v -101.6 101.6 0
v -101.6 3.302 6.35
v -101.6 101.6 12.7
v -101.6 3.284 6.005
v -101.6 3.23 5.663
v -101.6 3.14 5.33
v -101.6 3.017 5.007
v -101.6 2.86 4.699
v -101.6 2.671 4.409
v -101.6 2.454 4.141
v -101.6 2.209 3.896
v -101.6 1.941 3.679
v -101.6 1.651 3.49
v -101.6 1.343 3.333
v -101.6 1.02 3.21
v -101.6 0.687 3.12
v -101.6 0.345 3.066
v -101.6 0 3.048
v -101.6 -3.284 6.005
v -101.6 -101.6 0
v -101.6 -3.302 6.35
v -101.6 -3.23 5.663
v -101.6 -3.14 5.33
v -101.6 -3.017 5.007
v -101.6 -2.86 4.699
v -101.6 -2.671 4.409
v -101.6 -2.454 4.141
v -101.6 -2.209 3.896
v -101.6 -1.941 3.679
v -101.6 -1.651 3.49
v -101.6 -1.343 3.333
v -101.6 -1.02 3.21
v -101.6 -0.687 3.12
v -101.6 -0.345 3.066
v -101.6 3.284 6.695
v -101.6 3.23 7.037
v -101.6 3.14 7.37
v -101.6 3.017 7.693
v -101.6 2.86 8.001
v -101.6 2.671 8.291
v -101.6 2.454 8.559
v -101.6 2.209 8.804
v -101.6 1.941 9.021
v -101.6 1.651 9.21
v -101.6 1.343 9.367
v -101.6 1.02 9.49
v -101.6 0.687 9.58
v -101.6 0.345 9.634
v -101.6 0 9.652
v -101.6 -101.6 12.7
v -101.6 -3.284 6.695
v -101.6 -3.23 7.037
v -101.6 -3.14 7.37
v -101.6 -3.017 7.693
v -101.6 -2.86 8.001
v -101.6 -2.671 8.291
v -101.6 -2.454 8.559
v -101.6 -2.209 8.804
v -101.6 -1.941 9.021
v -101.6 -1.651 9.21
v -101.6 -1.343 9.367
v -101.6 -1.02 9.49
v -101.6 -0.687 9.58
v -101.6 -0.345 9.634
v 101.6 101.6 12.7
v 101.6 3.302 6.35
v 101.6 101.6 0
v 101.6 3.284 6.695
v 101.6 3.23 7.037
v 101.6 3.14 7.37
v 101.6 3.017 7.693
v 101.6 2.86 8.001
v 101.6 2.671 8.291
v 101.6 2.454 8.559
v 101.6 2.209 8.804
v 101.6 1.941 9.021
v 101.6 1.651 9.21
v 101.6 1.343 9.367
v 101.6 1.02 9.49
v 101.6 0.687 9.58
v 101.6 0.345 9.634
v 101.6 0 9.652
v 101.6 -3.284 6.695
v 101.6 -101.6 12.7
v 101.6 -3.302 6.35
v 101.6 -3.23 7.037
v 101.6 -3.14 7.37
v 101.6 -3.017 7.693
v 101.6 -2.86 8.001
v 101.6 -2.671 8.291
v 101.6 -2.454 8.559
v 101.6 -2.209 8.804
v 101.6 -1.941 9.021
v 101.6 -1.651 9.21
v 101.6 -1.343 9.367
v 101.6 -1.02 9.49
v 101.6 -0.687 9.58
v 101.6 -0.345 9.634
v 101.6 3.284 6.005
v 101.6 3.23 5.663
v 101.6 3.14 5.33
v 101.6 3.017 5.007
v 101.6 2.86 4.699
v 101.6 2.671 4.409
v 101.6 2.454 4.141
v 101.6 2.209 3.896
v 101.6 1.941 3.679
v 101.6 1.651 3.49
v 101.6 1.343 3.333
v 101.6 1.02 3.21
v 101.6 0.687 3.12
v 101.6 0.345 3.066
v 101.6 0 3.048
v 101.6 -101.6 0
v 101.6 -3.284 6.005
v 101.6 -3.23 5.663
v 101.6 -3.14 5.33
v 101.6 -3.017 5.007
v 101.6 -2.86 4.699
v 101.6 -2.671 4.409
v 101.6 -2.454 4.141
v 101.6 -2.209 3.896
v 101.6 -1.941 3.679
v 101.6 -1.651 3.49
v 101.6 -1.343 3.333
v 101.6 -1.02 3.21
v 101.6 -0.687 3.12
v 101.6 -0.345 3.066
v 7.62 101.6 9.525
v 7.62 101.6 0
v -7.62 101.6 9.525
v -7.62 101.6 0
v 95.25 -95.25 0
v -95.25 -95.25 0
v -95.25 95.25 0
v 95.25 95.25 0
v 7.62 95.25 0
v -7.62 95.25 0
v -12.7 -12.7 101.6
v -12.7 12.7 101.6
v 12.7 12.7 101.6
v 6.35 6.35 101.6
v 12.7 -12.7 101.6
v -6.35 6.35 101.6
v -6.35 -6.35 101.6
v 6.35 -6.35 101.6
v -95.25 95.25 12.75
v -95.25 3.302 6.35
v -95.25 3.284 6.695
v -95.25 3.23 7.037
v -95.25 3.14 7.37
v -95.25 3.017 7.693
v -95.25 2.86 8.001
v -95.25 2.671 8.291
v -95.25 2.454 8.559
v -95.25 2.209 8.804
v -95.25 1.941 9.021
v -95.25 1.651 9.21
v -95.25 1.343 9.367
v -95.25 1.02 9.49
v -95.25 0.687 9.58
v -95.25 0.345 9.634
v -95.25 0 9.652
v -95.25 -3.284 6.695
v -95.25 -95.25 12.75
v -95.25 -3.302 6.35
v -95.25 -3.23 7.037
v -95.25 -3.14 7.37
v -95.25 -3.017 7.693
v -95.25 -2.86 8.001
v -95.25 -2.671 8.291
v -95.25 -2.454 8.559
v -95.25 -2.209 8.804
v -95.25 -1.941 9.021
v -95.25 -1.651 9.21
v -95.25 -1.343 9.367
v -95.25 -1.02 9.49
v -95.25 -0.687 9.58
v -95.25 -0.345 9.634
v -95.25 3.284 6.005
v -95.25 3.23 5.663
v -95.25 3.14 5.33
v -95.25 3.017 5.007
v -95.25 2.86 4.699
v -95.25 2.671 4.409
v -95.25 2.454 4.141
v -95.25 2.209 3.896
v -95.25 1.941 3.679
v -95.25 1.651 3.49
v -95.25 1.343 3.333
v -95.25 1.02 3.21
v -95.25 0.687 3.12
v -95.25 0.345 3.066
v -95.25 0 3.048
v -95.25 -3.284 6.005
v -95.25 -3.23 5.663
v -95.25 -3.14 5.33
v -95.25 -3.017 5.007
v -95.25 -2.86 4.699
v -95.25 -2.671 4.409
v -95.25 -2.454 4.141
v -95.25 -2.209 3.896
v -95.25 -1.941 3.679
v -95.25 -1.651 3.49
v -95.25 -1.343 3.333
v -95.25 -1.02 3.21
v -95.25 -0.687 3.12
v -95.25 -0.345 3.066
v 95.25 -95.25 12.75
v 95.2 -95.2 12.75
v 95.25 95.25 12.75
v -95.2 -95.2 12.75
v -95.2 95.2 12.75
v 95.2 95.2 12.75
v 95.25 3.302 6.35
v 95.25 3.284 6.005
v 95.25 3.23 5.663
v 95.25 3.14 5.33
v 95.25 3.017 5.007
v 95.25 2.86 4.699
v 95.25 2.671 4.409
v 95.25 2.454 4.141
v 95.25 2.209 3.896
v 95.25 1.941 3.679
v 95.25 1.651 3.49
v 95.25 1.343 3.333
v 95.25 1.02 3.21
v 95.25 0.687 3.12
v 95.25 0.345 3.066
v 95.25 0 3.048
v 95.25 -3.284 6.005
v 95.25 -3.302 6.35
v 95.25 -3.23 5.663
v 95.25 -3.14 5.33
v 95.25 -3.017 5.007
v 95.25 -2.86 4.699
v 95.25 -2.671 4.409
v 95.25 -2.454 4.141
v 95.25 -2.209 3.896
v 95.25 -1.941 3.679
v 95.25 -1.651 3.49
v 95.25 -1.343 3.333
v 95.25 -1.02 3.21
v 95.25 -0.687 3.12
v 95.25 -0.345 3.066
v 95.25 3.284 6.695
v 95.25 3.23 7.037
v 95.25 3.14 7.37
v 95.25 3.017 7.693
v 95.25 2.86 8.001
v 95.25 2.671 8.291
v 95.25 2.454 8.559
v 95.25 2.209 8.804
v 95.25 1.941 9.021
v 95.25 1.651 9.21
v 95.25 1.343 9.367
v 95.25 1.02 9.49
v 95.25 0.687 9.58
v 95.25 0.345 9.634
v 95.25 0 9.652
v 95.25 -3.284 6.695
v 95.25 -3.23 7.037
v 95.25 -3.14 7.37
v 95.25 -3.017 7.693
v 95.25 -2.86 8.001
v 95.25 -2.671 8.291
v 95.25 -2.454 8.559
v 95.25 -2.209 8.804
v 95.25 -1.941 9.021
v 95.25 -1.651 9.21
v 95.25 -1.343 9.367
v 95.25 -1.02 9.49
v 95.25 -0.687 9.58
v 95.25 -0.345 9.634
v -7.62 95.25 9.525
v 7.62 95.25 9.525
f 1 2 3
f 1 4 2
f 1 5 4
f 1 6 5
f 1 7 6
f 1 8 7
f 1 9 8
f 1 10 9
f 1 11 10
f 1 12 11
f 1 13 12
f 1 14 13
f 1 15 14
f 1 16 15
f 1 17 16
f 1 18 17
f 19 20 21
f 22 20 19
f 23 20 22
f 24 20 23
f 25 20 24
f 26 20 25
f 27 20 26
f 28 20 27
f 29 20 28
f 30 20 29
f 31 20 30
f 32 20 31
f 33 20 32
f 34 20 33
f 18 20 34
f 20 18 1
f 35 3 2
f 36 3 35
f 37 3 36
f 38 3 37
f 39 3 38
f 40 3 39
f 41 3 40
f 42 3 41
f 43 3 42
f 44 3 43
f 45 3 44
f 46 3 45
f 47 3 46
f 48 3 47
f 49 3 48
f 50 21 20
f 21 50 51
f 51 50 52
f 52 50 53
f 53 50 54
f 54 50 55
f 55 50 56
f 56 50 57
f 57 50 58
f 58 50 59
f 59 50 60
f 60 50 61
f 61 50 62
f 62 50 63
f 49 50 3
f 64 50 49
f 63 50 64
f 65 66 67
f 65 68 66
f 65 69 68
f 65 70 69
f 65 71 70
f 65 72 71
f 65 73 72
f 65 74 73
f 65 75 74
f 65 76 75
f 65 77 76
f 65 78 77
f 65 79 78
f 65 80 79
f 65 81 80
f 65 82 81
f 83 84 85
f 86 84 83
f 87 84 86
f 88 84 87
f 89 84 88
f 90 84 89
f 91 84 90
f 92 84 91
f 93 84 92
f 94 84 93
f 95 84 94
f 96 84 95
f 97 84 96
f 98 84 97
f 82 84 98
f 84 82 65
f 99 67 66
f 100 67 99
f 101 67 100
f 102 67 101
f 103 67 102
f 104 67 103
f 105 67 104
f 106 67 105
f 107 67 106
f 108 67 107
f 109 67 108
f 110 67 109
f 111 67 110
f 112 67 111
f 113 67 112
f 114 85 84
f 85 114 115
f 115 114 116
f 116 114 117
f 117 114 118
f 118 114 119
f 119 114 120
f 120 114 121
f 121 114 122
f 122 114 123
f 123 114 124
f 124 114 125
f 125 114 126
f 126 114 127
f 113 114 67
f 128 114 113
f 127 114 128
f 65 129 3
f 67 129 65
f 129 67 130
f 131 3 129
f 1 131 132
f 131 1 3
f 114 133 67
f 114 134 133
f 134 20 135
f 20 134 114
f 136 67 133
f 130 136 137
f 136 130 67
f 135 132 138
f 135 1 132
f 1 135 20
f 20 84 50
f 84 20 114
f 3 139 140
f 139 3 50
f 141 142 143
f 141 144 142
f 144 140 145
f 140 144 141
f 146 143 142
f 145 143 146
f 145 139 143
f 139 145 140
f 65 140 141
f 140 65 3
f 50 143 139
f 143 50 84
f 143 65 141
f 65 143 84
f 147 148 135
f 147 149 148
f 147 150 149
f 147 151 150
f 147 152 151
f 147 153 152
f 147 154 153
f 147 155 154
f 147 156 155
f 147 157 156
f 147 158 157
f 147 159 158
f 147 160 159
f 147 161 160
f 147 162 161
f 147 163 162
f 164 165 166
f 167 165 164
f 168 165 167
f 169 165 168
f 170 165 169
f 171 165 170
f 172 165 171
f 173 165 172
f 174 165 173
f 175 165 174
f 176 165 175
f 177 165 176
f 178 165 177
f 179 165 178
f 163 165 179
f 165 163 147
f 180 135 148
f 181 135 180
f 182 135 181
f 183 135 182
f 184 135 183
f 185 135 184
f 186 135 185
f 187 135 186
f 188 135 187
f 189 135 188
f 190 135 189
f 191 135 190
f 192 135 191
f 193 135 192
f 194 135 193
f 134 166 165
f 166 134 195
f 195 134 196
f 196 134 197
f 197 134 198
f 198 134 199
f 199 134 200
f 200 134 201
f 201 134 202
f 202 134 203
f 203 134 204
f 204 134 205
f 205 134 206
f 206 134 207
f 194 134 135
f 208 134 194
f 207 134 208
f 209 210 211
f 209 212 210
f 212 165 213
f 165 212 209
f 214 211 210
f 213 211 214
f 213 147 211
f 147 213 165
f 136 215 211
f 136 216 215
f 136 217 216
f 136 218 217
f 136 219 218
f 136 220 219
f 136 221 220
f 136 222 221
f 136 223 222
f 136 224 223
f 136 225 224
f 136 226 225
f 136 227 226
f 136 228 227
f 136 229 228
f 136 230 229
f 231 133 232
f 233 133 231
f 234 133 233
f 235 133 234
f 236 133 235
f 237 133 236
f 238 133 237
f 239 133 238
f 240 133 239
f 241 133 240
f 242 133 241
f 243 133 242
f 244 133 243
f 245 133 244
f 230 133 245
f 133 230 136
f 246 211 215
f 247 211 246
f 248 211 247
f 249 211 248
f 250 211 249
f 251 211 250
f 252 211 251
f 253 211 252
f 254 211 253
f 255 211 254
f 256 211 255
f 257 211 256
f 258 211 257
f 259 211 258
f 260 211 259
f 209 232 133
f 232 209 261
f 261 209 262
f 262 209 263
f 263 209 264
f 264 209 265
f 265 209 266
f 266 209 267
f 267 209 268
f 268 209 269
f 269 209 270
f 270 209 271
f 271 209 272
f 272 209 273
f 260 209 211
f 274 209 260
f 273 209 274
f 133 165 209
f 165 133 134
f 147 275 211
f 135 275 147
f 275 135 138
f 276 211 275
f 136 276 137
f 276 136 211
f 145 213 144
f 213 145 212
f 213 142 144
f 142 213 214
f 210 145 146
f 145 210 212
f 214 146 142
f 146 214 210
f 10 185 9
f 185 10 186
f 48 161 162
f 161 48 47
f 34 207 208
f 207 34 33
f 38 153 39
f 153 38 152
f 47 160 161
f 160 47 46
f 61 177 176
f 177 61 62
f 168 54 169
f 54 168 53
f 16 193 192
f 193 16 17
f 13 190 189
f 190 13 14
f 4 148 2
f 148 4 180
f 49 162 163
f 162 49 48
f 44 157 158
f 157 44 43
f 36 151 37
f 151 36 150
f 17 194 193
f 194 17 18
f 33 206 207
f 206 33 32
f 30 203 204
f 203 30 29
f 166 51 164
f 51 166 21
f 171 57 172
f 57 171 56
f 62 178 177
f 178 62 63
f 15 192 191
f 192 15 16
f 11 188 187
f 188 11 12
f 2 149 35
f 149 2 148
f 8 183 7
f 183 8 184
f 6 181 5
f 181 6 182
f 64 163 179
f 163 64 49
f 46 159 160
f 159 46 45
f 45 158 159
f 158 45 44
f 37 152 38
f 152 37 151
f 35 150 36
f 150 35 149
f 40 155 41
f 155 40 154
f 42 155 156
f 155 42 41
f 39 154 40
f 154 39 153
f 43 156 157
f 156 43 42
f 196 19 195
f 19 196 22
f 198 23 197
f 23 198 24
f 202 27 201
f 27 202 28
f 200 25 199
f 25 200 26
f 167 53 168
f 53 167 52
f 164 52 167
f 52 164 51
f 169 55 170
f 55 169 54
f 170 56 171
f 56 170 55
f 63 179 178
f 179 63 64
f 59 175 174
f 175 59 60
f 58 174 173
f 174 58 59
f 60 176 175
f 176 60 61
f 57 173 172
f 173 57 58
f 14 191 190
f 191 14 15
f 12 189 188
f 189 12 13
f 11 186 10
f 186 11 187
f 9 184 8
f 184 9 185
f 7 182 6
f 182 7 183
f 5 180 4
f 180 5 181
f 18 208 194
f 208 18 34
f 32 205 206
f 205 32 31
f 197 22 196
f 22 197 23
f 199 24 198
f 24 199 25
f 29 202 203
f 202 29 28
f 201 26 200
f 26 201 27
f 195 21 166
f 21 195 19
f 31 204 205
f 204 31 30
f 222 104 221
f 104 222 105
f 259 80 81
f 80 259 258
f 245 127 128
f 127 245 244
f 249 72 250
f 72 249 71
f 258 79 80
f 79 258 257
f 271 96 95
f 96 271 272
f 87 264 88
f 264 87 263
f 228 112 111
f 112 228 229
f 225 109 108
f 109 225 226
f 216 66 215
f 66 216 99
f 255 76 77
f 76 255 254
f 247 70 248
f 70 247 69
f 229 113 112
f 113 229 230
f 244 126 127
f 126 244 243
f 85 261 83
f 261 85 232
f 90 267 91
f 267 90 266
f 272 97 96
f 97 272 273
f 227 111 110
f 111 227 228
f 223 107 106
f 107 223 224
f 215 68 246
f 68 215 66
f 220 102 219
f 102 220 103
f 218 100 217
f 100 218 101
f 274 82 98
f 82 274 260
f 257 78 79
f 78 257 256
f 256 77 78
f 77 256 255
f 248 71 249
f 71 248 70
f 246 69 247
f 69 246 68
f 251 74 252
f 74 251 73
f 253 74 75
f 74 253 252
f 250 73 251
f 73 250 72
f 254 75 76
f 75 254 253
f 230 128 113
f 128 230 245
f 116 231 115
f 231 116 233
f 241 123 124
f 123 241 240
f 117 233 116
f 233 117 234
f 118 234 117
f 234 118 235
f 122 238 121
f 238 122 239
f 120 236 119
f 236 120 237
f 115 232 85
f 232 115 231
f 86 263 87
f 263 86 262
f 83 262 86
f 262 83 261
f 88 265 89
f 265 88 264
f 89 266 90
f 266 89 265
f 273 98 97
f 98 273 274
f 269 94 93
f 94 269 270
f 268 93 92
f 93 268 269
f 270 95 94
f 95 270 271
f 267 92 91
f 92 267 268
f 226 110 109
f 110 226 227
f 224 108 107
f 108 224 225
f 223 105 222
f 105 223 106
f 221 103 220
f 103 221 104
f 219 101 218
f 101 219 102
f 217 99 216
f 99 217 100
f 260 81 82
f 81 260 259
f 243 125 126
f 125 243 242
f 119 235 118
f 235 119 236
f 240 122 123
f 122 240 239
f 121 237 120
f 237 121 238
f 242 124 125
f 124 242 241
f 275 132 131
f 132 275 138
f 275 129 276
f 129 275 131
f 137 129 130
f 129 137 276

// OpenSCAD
// All-Seeing Eye Enclosure Design
// Unit: mm (Converted from freedom units)

/* [Global Dimensions] */
INCH = 25.4;

// Base Specifications
base_width = 8.0 * INCH;
base_height = 0.5 * INCH;
wall_thickness = 0.25 * INCH;

// Pyramid Specifications
// Slope is 45 degrees.
// For a 45 degree slope, the change in height equals the change in radius (distance from center).
// Height to Apex = (base_width / 2) * tan(45) = base_width / 2
slope_angle = 45; 

// Top flat area for SMA connector
top_width = 1.0 * INCH; 

// Calculate pyramid height based on slope and top width
// The horizontal run from base edge to top edge is: (base_width - top_width) / 2
// height = run * tan(angle). Since angle is 45, tan is 1.
pyramid_height = (base_width - top_width) / 2;

// Connector Dimensions
sma_hole_diameter = 0.26 * INCH; // ~6.6mm, purely clearance for SMA thread
usb_cutout_width = 0.6 * INCH;
usb_cutout_height = 0.3 * INCH; // Height of the actual hole
usb_cable_clearance = 0.5 * INCH; // Width of slot at bottom

/* [Rendering resolution] */
$fn = 60;

module main() {
    difference() {
        // 1. Positive Volume (The Shell)
        union() {
            // A. Base Prism
            translate([0, 0, base_height/2])
                cube([base_width, base_width, base_height], center=true);
            
            // B. Pyramid Frustum
            // Positioned on top of the base
            translate([0, 0, base_height])
                pyramid_frustum(base_width, top_width, pyramid_height);
        }

        // 2. Negative Volume (The Hollow)
        union() {
            // A. Hollow Base
            // Subtract thickness from X and Y, but allow Z to cut through to pyramid
            translate([0, 0, base_height/2])
                cube([base_width - 2*wall_thickness, base_width - 2*wall_thickness, base_height + 0.1], center=true);
            
            // B. Hollow Pyramid
            // To maintain roughly constant wall thickness perpendicular to a 45 deg slope is tricky with simple scaling.
            // Simple approach: Subtract inner pyramid starting at same height, but with smaller base.
            // Inner base width = Outer Width - 2 * wall_thickness
            // We want the inner void to match up with the base void.
            inner_base_width = base_width - 2*wall_thickness;
            inner_top_width = max(0, top_width - 2*wall_thickness); // Ensure it doesn't invert
            
            // The height of the inner pyramid needs to be calculated or offset carefully.
            // Since it's 45 degrees, the inner ceiling is lower by 'wall_thickness'.
            translate([0, 0, base_height])
                 pyramid_frustum(inner_base_width, inner_top_width, pyramid_height);
        }

        // 3. Cutouts / Holes
        
        // A. Top SMA Connector (Apex)
        translate([0, 0, base_height + pyramid_height - 1]) // Start slightly below top
            cylinder(h = wall_thickness + 2, d = sma_hole_diameter, center = false);

        // B. Left Face SMA (WiFi) - Looking from Front
        // Front is -Y (standard convention often, but let's define Front).
        // Let's assume:
        // +Y = Back (Rear)
        // -Y = Front
        // -X = Left
        // +X = Right
        
        // Left Face (-X)
        translate([-base_width/2 + wall_thickness/2, 0, base_height/2])
            rotate([0, 90, 0])
            cylinder(h = wall_thickness + 2, d = sma_hole_diameter, center = true);

        // C. Right Face SMA (Meshtastic) (+X)
        translate([base_width/2 - wall_thickness/2, 0, base_height/2])
            rotate([0, 90, 0])
            cylinder(h = wall_thickness + 2, d = sma_hole_diameter, center = true);

        // D. Rear Face USB (+Y)
        // "Hole reaching to the bottom of the base"
        translate([0, base_width/2 - wall_thickness/2, 0]) // At bottom Z=0
            cube([usb_cutout_width, wall_thickness + 2, base_height*1.5], center = true);
            
    }
}

// Module to create a centered 4-sided pyramid frustum
module pyramid_frustum(base_w, top_w, h) {
    // OpenSCAD's cylinder with $fn=4 creates a square rotated by 45 degrees.
    // To align it with axes, we rotate it by 45 degrees.
    // circumradius = side / sqrt(2) * 2? No.
    // side = r * sqrt(2). r = side / sqrt(2).
    
    r_base = (base_w / 2) * sqrt(2);
    r_top = (top_w / 2) * sqrt(2);
    
    rotate([0, 0, 45])
        cylinder(h=h, r1=r_base, r2=r_top, $fn=4);
}

main();
